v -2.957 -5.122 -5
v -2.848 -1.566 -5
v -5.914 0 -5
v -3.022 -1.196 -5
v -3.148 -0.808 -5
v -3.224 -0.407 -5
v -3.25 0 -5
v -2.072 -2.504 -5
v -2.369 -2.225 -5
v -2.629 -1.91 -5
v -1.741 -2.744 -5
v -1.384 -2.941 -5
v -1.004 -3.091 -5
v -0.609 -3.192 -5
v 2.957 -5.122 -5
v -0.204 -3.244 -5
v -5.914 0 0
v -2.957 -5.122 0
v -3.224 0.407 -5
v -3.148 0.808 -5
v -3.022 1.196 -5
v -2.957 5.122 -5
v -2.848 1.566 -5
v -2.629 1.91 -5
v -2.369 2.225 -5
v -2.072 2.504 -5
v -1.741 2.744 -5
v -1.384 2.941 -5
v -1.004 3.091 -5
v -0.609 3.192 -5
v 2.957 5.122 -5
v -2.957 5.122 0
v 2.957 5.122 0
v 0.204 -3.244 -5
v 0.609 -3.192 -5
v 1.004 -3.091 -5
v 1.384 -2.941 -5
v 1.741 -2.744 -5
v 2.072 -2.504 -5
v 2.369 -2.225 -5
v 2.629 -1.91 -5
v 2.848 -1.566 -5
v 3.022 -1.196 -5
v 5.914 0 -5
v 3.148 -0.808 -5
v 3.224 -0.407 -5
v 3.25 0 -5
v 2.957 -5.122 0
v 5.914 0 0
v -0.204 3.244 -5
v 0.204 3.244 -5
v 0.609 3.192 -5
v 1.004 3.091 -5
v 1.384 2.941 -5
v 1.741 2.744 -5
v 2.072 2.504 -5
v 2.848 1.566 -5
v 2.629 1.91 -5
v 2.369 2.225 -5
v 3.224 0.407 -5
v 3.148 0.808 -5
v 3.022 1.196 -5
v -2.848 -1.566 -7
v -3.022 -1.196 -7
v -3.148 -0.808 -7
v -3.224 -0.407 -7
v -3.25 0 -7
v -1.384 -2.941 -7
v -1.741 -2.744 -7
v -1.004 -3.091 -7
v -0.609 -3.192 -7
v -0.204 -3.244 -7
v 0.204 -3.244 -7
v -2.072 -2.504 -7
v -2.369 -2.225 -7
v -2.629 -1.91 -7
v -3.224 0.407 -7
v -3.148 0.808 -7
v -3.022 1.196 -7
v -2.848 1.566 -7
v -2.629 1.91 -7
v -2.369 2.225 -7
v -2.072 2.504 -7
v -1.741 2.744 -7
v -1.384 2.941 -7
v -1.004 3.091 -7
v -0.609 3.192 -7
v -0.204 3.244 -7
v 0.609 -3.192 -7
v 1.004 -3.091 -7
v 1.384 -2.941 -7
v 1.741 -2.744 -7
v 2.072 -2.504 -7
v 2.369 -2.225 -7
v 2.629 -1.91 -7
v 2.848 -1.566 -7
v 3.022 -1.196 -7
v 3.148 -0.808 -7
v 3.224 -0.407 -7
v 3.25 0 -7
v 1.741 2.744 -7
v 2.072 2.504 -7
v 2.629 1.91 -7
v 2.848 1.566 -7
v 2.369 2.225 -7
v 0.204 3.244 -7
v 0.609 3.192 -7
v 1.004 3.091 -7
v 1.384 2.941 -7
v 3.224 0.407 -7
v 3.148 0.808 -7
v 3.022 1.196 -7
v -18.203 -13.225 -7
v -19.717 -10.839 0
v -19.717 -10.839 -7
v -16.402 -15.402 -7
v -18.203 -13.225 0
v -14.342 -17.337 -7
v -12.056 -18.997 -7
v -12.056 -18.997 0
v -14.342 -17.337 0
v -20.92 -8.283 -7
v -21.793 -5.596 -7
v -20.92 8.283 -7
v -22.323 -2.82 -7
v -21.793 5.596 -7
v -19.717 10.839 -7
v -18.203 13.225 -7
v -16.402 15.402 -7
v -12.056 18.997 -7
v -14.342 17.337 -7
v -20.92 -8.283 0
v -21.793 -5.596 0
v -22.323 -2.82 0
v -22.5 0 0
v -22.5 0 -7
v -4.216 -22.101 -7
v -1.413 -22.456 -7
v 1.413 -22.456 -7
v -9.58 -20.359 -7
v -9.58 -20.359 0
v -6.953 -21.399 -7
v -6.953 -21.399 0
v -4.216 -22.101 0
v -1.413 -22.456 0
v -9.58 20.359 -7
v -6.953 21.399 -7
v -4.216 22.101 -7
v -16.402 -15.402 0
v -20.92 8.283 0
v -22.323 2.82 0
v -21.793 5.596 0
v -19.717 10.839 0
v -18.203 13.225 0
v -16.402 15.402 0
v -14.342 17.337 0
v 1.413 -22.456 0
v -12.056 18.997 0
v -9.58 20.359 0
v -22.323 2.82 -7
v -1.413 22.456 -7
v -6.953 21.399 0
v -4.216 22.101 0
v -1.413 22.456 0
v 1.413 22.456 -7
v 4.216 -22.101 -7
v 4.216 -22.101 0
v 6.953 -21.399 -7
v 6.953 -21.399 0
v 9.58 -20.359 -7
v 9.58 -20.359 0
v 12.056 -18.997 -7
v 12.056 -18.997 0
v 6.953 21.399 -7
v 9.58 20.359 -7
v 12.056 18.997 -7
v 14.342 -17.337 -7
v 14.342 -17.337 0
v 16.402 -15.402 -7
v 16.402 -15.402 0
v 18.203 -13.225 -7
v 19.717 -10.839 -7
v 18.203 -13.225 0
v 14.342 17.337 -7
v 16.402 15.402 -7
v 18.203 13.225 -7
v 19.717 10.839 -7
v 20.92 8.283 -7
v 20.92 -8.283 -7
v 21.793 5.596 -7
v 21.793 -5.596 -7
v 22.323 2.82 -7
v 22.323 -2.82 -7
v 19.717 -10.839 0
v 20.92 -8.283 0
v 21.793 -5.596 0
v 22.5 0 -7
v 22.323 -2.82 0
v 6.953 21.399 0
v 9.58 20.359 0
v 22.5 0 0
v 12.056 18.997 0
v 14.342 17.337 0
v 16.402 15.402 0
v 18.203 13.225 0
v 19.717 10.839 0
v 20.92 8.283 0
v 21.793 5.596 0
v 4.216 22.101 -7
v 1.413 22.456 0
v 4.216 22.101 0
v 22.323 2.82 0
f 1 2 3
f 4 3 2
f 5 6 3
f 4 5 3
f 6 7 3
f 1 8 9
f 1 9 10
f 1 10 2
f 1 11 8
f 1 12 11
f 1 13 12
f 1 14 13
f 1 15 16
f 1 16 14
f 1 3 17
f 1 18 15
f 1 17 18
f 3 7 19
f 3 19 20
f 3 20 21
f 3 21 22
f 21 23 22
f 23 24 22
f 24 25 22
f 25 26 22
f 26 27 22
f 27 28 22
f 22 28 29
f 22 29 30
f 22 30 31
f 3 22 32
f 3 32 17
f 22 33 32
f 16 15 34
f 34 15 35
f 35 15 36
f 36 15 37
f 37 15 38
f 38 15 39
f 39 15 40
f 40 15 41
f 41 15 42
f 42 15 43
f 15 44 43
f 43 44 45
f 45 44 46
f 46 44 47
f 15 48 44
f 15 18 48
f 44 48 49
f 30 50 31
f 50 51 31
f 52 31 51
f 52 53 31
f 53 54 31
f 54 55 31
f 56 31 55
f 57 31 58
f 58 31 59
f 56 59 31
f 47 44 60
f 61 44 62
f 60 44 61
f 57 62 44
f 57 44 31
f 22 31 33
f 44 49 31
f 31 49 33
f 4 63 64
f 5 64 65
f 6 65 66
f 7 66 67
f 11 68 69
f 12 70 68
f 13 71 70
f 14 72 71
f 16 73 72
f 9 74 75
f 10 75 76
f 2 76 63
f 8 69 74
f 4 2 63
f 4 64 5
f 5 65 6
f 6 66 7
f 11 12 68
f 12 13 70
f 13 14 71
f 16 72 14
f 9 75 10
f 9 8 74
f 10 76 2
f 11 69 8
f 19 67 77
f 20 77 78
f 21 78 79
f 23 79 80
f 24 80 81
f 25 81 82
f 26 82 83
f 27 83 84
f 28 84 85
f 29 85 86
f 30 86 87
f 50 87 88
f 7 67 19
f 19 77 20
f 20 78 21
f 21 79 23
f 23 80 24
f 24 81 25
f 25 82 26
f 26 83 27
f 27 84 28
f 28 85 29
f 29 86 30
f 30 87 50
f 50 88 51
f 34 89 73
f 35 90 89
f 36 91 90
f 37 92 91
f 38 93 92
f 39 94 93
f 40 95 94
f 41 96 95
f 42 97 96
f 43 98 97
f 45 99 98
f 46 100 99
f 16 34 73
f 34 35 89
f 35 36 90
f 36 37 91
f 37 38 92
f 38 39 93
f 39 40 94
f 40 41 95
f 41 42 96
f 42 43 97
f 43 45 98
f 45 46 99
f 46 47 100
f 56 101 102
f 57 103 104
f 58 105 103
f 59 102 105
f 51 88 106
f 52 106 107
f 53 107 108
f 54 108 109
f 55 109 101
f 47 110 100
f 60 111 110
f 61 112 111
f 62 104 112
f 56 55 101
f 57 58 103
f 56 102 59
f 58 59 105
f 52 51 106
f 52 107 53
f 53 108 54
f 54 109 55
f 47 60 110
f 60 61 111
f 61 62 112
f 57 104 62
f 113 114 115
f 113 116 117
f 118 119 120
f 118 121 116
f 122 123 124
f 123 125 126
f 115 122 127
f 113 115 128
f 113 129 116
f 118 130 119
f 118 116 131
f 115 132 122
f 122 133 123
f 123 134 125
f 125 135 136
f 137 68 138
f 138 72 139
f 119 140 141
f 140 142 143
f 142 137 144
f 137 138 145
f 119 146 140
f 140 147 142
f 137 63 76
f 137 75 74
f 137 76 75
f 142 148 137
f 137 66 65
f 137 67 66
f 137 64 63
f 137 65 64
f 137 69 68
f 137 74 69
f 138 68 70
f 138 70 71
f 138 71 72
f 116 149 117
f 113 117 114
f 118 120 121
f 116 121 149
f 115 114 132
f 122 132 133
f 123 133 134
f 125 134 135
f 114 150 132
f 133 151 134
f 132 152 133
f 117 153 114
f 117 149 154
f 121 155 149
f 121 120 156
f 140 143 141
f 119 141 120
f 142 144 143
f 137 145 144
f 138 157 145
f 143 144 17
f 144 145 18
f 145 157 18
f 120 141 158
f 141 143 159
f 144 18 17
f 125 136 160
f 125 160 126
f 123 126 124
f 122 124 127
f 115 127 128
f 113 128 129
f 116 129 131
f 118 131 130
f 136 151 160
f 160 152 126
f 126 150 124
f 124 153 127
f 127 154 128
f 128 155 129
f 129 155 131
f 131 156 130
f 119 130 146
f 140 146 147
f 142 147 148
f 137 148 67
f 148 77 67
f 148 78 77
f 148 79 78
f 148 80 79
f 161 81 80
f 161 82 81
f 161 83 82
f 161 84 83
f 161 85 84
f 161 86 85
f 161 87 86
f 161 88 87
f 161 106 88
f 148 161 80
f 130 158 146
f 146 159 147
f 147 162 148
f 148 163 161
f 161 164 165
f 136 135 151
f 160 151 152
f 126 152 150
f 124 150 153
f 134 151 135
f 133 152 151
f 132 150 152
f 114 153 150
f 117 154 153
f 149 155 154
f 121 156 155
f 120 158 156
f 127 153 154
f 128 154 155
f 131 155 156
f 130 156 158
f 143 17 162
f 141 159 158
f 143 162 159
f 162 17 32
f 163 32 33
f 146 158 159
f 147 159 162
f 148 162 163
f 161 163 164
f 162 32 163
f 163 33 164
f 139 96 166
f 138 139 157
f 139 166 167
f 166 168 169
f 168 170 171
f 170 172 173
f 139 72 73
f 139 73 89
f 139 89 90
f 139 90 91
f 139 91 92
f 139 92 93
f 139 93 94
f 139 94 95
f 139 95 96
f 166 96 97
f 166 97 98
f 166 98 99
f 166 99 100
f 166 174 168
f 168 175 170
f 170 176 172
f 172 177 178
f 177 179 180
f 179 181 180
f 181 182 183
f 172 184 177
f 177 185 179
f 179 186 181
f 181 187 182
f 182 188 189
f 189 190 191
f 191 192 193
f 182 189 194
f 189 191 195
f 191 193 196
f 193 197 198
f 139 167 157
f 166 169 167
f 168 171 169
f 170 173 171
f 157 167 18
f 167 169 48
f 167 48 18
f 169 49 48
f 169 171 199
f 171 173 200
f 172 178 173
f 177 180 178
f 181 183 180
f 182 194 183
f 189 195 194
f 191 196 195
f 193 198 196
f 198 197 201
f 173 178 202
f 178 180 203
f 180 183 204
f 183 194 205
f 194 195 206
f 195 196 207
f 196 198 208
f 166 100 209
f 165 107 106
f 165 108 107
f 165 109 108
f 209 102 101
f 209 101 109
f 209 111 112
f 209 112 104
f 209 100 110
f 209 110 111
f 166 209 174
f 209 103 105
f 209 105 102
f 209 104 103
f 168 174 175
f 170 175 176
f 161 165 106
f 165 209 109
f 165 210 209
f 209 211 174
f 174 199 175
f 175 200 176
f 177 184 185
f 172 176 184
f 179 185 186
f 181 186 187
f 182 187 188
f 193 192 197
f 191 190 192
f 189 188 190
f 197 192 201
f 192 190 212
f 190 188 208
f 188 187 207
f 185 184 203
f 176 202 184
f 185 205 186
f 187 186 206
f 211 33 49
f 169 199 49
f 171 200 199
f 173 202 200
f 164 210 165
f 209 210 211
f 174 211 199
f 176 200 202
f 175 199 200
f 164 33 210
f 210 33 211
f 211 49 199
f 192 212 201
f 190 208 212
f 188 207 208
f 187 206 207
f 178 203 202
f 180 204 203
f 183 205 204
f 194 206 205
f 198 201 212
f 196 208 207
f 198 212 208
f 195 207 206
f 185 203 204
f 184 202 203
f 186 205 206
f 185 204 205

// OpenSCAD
$fn = 50;

difference() {
	union() {
		translate(v = [0, 0, -7.0]) {
			cylinder(h = 7.0, r = 22.5);
		}
	}
	union() {
		translate(v = [0, 0, 0]) {
			rotate(a = [0, 0, 0]) {
				difference() {
					union() {
						translate(v = [0, 0, -5]) {
							linear_extrude(height = 5) {
								polygon(points = [[5.914249999999999, 0.0], [2.957125, 5.1218907443321156], [-2.9571249999999982, 5.1218907443321156], [-5.914249999999999, 7.242867331857232e-16], [-2.9571250000000022, -5.121890744332115], [2.9571249999999956, -5.121890744332118]]);
							}
						}
					}
					union();
				}
			}
		}
		#translate(v = [0, 0, -100.0]) {
			cylinder(h = 200, r = 3.25);
		}
	}
}
